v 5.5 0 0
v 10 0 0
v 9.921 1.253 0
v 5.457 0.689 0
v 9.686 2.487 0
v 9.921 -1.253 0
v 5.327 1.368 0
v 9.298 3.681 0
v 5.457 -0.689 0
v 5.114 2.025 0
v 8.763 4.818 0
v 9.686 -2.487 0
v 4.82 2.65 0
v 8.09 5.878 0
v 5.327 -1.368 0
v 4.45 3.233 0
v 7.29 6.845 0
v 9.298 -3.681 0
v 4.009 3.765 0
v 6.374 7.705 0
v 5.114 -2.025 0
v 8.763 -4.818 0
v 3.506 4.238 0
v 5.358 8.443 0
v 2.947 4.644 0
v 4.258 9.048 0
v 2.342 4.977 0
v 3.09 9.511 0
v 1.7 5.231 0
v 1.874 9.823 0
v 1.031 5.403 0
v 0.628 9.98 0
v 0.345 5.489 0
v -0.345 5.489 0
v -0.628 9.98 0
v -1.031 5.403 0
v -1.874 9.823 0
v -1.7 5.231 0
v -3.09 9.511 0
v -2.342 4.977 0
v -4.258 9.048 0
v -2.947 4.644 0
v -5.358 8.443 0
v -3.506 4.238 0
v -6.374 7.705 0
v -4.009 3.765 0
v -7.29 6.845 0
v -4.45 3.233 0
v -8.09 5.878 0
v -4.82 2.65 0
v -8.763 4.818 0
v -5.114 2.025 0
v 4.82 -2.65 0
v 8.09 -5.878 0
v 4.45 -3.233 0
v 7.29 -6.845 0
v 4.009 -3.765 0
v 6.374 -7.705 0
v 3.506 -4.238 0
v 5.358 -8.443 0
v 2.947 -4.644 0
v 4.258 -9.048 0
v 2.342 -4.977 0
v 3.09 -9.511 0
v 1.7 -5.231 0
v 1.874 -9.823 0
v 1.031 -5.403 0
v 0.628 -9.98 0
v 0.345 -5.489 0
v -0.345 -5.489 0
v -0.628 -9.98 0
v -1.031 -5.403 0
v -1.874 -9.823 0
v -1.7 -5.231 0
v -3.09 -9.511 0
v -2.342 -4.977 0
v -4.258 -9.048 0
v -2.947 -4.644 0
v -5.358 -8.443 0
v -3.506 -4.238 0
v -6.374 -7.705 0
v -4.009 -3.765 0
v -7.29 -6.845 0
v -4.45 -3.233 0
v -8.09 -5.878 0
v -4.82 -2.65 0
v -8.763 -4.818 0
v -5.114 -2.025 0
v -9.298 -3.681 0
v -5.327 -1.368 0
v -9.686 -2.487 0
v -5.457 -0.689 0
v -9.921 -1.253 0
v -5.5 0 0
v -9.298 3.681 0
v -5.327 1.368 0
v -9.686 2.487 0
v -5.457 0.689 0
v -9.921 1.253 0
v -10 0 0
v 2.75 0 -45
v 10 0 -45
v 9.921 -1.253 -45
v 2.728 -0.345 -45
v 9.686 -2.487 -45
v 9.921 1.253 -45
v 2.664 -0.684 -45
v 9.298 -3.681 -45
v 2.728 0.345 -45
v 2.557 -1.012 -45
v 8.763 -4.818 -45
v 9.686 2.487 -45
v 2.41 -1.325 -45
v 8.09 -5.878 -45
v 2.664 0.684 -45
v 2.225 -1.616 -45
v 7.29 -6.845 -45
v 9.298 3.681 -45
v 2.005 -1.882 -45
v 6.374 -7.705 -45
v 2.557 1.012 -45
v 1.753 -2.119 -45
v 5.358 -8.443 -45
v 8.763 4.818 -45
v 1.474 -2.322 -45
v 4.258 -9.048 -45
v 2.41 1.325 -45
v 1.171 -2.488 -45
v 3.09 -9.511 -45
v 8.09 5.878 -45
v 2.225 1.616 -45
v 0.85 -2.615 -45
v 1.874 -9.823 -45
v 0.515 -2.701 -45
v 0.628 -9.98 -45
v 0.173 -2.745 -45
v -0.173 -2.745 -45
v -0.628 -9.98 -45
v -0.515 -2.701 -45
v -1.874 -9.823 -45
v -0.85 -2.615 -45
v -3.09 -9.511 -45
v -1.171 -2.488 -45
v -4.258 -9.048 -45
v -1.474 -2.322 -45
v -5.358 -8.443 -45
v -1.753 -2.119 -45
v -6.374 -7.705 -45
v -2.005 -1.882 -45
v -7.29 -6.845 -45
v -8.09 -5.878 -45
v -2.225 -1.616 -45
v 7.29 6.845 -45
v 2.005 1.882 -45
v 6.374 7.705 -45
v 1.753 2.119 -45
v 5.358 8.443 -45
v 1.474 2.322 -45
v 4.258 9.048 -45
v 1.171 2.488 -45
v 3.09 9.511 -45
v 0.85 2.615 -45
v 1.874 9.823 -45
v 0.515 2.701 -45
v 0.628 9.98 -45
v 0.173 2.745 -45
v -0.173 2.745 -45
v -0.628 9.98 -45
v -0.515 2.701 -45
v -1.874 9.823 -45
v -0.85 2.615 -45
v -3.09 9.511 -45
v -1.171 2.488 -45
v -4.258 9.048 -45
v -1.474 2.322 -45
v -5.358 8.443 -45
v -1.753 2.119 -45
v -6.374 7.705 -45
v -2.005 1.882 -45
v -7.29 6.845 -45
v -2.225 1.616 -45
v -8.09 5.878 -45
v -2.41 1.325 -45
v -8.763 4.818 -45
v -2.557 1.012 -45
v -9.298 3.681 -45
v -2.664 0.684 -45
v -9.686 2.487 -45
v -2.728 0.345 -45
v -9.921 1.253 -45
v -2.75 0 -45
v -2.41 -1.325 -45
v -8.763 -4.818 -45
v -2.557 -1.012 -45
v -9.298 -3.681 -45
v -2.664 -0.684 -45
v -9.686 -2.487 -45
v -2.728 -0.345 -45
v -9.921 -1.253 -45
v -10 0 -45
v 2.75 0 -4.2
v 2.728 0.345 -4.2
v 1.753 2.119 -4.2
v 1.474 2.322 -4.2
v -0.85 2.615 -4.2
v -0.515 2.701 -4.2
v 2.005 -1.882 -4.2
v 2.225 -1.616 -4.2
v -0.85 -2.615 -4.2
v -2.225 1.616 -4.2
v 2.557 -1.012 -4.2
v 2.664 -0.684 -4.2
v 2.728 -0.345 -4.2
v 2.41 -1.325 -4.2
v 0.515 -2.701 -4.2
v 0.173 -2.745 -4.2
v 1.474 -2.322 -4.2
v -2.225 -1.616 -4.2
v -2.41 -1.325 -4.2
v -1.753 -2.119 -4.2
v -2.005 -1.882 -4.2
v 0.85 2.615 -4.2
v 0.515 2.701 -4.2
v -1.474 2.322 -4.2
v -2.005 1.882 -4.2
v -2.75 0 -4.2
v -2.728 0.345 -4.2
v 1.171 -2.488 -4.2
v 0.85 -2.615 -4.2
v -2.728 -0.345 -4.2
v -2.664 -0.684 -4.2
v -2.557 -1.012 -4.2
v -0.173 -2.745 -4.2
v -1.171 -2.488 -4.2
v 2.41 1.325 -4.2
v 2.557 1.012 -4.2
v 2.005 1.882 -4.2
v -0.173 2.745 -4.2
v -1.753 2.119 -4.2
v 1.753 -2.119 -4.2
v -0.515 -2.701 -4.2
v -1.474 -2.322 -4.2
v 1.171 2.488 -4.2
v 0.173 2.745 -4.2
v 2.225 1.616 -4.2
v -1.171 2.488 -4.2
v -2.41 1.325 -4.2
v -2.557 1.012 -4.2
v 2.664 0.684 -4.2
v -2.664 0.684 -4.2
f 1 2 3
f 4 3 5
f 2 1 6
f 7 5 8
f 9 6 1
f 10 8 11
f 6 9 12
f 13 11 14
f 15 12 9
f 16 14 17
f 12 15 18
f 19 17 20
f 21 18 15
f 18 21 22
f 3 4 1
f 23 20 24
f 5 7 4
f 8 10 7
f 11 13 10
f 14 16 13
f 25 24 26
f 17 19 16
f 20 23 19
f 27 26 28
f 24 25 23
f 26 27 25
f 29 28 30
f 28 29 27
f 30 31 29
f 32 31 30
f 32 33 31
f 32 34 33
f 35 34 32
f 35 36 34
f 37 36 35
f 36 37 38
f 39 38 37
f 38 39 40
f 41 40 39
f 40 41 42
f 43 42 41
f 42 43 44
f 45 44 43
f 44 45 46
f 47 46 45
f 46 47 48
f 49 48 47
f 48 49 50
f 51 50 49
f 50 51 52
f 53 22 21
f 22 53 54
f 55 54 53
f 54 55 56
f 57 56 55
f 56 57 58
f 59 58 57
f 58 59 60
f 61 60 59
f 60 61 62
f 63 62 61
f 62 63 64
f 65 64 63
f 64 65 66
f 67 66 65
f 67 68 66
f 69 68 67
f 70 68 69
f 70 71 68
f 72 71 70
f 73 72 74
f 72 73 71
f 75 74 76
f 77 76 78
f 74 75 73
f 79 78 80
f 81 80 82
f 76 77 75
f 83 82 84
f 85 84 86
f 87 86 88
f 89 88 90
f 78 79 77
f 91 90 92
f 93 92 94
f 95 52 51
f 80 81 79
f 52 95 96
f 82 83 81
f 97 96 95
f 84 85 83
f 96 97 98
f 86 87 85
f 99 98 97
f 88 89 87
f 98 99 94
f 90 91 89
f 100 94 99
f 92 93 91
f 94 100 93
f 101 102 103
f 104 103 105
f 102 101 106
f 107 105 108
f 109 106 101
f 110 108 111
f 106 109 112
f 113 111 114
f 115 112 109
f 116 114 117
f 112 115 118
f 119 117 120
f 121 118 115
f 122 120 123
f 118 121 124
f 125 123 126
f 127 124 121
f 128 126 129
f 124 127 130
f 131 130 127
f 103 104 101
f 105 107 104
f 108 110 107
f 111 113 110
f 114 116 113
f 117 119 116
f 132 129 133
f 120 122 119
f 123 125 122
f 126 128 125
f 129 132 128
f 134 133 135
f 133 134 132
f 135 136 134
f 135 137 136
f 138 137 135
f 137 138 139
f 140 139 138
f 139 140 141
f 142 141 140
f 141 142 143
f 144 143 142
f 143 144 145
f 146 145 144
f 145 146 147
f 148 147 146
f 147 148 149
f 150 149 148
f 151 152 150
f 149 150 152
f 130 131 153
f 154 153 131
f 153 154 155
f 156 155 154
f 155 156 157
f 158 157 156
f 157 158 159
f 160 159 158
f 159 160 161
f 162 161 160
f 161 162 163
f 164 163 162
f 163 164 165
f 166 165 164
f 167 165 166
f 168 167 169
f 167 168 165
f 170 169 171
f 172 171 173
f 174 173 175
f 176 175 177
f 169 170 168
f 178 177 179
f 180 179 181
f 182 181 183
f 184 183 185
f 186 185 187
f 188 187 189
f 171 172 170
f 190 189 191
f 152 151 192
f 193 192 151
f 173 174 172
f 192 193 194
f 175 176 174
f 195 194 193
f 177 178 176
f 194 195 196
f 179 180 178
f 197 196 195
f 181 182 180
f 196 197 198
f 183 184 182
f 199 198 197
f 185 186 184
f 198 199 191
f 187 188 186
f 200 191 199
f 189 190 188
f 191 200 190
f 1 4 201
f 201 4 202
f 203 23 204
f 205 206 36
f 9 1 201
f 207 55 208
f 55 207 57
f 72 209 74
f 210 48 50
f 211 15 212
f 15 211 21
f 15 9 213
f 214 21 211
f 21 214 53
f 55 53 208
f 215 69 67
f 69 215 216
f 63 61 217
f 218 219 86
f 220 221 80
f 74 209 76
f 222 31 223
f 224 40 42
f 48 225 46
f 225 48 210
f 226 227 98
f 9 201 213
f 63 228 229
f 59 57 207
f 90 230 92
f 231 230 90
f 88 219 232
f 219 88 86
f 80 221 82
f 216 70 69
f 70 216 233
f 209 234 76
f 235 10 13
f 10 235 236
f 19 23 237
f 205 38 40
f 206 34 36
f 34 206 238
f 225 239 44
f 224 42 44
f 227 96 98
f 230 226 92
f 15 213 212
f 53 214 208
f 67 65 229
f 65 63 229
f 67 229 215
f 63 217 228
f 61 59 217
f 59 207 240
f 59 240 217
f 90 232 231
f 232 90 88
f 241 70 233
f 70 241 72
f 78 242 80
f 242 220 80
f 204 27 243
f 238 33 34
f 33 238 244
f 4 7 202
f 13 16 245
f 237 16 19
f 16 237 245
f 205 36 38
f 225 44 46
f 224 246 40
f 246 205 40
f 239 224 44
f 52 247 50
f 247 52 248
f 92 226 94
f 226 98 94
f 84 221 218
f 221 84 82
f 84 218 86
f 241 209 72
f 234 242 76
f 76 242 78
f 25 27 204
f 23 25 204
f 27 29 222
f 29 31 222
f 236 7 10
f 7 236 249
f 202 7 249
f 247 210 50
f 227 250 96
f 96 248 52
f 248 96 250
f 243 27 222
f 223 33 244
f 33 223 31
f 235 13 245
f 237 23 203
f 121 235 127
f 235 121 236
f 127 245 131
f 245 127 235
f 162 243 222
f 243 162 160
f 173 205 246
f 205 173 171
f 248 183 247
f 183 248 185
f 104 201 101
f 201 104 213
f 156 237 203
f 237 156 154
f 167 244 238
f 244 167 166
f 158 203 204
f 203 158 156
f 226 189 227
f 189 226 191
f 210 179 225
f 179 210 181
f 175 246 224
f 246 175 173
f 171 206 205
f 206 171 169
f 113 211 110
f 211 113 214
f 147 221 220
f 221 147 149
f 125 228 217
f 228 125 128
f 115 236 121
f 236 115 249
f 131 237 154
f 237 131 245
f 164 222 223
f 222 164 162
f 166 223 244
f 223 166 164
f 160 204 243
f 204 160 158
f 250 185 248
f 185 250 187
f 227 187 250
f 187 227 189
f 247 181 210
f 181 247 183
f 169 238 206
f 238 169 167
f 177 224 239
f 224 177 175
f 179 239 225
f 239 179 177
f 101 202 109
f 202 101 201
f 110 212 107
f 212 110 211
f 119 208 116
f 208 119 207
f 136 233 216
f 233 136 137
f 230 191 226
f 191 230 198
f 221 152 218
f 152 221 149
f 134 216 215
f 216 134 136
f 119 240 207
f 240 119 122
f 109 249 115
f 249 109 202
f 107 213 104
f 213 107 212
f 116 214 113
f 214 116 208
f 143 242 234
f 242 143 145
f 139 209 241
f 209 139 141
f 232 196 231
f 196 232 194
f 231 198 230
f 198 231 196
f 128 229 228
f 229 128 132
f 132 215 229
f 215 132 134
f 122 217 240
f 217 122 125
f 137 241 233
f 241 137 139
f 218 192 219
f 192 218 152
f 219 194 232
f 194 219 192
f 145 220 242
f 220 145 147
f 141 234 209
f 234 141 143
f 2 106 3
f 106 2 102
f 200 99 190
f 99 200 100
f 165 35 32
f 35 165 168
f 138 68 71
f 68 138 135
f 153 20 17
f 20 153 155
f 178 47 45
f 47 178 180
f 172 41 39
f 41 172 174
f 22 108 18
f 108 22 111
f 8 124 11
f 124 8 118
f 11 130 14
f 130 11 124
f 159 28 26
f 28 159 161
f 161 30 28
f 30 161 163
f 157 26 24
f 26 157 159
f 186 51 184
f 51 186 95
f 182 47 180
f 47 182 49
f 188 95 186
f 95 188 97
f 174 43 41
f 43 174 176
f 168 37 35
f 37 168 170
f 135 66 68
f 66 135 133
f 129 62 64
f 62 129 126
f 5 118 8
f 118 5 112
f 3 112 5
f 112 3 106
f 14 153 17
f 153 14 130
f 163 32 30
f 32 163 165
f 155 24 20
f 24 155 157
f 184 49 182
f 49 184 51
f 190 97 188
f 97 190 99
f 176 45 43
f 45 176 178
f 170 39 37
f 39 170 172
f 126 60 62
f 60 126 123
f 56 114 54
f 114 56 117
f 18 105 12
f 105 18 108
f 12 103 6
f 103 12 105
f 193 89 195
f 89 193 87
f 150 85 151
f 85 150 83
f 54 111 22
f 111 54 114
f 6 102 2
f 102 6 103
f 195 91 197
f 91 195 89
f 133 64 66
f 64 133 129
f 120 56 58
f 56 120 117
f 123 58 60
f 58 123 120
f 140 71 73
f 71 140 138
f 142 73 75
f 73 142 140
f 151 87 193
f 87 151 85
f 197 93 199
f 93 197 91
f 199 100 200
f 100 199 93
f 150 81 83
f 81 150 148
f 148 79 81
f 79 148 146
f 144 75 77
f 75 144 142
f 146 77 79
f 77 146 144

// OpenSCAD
$fn = 50;


difference() {
	union() {
		translate(v = [0, 0, -45.0000000000]) {
			cylinder(h = 45, r = 10.0000000000);
		}
		cylinder(h = 0, r = 19.0000000000);
	}
	union() {
		translate(v = [0, 0, 0]) {
			rotate(a = [0, 0, 0]) {
				difference() {
					union() {
						#translate(v = [0, 0, -45.0000000000]) {
							cylinder(h = 45, r = 2.2500000000);
						}
						#translate(v = [0, 0, -4.2000000000]) {
							cylinder(h = 4.2000000000, r1 = 2.7500000000, r2 = 5.5000000000);
						}
						#translate(v = [0, 0, -45.0000000000]) {
							cylinder(h = 45, r = 2.7500000000);
						}
						#translate(v = [0, 0, -45.0000000000]) {
							cylinder(h = 45, r = 2.2500000000);
						}
					}
					union();
				}
			}
		}
	}
}
